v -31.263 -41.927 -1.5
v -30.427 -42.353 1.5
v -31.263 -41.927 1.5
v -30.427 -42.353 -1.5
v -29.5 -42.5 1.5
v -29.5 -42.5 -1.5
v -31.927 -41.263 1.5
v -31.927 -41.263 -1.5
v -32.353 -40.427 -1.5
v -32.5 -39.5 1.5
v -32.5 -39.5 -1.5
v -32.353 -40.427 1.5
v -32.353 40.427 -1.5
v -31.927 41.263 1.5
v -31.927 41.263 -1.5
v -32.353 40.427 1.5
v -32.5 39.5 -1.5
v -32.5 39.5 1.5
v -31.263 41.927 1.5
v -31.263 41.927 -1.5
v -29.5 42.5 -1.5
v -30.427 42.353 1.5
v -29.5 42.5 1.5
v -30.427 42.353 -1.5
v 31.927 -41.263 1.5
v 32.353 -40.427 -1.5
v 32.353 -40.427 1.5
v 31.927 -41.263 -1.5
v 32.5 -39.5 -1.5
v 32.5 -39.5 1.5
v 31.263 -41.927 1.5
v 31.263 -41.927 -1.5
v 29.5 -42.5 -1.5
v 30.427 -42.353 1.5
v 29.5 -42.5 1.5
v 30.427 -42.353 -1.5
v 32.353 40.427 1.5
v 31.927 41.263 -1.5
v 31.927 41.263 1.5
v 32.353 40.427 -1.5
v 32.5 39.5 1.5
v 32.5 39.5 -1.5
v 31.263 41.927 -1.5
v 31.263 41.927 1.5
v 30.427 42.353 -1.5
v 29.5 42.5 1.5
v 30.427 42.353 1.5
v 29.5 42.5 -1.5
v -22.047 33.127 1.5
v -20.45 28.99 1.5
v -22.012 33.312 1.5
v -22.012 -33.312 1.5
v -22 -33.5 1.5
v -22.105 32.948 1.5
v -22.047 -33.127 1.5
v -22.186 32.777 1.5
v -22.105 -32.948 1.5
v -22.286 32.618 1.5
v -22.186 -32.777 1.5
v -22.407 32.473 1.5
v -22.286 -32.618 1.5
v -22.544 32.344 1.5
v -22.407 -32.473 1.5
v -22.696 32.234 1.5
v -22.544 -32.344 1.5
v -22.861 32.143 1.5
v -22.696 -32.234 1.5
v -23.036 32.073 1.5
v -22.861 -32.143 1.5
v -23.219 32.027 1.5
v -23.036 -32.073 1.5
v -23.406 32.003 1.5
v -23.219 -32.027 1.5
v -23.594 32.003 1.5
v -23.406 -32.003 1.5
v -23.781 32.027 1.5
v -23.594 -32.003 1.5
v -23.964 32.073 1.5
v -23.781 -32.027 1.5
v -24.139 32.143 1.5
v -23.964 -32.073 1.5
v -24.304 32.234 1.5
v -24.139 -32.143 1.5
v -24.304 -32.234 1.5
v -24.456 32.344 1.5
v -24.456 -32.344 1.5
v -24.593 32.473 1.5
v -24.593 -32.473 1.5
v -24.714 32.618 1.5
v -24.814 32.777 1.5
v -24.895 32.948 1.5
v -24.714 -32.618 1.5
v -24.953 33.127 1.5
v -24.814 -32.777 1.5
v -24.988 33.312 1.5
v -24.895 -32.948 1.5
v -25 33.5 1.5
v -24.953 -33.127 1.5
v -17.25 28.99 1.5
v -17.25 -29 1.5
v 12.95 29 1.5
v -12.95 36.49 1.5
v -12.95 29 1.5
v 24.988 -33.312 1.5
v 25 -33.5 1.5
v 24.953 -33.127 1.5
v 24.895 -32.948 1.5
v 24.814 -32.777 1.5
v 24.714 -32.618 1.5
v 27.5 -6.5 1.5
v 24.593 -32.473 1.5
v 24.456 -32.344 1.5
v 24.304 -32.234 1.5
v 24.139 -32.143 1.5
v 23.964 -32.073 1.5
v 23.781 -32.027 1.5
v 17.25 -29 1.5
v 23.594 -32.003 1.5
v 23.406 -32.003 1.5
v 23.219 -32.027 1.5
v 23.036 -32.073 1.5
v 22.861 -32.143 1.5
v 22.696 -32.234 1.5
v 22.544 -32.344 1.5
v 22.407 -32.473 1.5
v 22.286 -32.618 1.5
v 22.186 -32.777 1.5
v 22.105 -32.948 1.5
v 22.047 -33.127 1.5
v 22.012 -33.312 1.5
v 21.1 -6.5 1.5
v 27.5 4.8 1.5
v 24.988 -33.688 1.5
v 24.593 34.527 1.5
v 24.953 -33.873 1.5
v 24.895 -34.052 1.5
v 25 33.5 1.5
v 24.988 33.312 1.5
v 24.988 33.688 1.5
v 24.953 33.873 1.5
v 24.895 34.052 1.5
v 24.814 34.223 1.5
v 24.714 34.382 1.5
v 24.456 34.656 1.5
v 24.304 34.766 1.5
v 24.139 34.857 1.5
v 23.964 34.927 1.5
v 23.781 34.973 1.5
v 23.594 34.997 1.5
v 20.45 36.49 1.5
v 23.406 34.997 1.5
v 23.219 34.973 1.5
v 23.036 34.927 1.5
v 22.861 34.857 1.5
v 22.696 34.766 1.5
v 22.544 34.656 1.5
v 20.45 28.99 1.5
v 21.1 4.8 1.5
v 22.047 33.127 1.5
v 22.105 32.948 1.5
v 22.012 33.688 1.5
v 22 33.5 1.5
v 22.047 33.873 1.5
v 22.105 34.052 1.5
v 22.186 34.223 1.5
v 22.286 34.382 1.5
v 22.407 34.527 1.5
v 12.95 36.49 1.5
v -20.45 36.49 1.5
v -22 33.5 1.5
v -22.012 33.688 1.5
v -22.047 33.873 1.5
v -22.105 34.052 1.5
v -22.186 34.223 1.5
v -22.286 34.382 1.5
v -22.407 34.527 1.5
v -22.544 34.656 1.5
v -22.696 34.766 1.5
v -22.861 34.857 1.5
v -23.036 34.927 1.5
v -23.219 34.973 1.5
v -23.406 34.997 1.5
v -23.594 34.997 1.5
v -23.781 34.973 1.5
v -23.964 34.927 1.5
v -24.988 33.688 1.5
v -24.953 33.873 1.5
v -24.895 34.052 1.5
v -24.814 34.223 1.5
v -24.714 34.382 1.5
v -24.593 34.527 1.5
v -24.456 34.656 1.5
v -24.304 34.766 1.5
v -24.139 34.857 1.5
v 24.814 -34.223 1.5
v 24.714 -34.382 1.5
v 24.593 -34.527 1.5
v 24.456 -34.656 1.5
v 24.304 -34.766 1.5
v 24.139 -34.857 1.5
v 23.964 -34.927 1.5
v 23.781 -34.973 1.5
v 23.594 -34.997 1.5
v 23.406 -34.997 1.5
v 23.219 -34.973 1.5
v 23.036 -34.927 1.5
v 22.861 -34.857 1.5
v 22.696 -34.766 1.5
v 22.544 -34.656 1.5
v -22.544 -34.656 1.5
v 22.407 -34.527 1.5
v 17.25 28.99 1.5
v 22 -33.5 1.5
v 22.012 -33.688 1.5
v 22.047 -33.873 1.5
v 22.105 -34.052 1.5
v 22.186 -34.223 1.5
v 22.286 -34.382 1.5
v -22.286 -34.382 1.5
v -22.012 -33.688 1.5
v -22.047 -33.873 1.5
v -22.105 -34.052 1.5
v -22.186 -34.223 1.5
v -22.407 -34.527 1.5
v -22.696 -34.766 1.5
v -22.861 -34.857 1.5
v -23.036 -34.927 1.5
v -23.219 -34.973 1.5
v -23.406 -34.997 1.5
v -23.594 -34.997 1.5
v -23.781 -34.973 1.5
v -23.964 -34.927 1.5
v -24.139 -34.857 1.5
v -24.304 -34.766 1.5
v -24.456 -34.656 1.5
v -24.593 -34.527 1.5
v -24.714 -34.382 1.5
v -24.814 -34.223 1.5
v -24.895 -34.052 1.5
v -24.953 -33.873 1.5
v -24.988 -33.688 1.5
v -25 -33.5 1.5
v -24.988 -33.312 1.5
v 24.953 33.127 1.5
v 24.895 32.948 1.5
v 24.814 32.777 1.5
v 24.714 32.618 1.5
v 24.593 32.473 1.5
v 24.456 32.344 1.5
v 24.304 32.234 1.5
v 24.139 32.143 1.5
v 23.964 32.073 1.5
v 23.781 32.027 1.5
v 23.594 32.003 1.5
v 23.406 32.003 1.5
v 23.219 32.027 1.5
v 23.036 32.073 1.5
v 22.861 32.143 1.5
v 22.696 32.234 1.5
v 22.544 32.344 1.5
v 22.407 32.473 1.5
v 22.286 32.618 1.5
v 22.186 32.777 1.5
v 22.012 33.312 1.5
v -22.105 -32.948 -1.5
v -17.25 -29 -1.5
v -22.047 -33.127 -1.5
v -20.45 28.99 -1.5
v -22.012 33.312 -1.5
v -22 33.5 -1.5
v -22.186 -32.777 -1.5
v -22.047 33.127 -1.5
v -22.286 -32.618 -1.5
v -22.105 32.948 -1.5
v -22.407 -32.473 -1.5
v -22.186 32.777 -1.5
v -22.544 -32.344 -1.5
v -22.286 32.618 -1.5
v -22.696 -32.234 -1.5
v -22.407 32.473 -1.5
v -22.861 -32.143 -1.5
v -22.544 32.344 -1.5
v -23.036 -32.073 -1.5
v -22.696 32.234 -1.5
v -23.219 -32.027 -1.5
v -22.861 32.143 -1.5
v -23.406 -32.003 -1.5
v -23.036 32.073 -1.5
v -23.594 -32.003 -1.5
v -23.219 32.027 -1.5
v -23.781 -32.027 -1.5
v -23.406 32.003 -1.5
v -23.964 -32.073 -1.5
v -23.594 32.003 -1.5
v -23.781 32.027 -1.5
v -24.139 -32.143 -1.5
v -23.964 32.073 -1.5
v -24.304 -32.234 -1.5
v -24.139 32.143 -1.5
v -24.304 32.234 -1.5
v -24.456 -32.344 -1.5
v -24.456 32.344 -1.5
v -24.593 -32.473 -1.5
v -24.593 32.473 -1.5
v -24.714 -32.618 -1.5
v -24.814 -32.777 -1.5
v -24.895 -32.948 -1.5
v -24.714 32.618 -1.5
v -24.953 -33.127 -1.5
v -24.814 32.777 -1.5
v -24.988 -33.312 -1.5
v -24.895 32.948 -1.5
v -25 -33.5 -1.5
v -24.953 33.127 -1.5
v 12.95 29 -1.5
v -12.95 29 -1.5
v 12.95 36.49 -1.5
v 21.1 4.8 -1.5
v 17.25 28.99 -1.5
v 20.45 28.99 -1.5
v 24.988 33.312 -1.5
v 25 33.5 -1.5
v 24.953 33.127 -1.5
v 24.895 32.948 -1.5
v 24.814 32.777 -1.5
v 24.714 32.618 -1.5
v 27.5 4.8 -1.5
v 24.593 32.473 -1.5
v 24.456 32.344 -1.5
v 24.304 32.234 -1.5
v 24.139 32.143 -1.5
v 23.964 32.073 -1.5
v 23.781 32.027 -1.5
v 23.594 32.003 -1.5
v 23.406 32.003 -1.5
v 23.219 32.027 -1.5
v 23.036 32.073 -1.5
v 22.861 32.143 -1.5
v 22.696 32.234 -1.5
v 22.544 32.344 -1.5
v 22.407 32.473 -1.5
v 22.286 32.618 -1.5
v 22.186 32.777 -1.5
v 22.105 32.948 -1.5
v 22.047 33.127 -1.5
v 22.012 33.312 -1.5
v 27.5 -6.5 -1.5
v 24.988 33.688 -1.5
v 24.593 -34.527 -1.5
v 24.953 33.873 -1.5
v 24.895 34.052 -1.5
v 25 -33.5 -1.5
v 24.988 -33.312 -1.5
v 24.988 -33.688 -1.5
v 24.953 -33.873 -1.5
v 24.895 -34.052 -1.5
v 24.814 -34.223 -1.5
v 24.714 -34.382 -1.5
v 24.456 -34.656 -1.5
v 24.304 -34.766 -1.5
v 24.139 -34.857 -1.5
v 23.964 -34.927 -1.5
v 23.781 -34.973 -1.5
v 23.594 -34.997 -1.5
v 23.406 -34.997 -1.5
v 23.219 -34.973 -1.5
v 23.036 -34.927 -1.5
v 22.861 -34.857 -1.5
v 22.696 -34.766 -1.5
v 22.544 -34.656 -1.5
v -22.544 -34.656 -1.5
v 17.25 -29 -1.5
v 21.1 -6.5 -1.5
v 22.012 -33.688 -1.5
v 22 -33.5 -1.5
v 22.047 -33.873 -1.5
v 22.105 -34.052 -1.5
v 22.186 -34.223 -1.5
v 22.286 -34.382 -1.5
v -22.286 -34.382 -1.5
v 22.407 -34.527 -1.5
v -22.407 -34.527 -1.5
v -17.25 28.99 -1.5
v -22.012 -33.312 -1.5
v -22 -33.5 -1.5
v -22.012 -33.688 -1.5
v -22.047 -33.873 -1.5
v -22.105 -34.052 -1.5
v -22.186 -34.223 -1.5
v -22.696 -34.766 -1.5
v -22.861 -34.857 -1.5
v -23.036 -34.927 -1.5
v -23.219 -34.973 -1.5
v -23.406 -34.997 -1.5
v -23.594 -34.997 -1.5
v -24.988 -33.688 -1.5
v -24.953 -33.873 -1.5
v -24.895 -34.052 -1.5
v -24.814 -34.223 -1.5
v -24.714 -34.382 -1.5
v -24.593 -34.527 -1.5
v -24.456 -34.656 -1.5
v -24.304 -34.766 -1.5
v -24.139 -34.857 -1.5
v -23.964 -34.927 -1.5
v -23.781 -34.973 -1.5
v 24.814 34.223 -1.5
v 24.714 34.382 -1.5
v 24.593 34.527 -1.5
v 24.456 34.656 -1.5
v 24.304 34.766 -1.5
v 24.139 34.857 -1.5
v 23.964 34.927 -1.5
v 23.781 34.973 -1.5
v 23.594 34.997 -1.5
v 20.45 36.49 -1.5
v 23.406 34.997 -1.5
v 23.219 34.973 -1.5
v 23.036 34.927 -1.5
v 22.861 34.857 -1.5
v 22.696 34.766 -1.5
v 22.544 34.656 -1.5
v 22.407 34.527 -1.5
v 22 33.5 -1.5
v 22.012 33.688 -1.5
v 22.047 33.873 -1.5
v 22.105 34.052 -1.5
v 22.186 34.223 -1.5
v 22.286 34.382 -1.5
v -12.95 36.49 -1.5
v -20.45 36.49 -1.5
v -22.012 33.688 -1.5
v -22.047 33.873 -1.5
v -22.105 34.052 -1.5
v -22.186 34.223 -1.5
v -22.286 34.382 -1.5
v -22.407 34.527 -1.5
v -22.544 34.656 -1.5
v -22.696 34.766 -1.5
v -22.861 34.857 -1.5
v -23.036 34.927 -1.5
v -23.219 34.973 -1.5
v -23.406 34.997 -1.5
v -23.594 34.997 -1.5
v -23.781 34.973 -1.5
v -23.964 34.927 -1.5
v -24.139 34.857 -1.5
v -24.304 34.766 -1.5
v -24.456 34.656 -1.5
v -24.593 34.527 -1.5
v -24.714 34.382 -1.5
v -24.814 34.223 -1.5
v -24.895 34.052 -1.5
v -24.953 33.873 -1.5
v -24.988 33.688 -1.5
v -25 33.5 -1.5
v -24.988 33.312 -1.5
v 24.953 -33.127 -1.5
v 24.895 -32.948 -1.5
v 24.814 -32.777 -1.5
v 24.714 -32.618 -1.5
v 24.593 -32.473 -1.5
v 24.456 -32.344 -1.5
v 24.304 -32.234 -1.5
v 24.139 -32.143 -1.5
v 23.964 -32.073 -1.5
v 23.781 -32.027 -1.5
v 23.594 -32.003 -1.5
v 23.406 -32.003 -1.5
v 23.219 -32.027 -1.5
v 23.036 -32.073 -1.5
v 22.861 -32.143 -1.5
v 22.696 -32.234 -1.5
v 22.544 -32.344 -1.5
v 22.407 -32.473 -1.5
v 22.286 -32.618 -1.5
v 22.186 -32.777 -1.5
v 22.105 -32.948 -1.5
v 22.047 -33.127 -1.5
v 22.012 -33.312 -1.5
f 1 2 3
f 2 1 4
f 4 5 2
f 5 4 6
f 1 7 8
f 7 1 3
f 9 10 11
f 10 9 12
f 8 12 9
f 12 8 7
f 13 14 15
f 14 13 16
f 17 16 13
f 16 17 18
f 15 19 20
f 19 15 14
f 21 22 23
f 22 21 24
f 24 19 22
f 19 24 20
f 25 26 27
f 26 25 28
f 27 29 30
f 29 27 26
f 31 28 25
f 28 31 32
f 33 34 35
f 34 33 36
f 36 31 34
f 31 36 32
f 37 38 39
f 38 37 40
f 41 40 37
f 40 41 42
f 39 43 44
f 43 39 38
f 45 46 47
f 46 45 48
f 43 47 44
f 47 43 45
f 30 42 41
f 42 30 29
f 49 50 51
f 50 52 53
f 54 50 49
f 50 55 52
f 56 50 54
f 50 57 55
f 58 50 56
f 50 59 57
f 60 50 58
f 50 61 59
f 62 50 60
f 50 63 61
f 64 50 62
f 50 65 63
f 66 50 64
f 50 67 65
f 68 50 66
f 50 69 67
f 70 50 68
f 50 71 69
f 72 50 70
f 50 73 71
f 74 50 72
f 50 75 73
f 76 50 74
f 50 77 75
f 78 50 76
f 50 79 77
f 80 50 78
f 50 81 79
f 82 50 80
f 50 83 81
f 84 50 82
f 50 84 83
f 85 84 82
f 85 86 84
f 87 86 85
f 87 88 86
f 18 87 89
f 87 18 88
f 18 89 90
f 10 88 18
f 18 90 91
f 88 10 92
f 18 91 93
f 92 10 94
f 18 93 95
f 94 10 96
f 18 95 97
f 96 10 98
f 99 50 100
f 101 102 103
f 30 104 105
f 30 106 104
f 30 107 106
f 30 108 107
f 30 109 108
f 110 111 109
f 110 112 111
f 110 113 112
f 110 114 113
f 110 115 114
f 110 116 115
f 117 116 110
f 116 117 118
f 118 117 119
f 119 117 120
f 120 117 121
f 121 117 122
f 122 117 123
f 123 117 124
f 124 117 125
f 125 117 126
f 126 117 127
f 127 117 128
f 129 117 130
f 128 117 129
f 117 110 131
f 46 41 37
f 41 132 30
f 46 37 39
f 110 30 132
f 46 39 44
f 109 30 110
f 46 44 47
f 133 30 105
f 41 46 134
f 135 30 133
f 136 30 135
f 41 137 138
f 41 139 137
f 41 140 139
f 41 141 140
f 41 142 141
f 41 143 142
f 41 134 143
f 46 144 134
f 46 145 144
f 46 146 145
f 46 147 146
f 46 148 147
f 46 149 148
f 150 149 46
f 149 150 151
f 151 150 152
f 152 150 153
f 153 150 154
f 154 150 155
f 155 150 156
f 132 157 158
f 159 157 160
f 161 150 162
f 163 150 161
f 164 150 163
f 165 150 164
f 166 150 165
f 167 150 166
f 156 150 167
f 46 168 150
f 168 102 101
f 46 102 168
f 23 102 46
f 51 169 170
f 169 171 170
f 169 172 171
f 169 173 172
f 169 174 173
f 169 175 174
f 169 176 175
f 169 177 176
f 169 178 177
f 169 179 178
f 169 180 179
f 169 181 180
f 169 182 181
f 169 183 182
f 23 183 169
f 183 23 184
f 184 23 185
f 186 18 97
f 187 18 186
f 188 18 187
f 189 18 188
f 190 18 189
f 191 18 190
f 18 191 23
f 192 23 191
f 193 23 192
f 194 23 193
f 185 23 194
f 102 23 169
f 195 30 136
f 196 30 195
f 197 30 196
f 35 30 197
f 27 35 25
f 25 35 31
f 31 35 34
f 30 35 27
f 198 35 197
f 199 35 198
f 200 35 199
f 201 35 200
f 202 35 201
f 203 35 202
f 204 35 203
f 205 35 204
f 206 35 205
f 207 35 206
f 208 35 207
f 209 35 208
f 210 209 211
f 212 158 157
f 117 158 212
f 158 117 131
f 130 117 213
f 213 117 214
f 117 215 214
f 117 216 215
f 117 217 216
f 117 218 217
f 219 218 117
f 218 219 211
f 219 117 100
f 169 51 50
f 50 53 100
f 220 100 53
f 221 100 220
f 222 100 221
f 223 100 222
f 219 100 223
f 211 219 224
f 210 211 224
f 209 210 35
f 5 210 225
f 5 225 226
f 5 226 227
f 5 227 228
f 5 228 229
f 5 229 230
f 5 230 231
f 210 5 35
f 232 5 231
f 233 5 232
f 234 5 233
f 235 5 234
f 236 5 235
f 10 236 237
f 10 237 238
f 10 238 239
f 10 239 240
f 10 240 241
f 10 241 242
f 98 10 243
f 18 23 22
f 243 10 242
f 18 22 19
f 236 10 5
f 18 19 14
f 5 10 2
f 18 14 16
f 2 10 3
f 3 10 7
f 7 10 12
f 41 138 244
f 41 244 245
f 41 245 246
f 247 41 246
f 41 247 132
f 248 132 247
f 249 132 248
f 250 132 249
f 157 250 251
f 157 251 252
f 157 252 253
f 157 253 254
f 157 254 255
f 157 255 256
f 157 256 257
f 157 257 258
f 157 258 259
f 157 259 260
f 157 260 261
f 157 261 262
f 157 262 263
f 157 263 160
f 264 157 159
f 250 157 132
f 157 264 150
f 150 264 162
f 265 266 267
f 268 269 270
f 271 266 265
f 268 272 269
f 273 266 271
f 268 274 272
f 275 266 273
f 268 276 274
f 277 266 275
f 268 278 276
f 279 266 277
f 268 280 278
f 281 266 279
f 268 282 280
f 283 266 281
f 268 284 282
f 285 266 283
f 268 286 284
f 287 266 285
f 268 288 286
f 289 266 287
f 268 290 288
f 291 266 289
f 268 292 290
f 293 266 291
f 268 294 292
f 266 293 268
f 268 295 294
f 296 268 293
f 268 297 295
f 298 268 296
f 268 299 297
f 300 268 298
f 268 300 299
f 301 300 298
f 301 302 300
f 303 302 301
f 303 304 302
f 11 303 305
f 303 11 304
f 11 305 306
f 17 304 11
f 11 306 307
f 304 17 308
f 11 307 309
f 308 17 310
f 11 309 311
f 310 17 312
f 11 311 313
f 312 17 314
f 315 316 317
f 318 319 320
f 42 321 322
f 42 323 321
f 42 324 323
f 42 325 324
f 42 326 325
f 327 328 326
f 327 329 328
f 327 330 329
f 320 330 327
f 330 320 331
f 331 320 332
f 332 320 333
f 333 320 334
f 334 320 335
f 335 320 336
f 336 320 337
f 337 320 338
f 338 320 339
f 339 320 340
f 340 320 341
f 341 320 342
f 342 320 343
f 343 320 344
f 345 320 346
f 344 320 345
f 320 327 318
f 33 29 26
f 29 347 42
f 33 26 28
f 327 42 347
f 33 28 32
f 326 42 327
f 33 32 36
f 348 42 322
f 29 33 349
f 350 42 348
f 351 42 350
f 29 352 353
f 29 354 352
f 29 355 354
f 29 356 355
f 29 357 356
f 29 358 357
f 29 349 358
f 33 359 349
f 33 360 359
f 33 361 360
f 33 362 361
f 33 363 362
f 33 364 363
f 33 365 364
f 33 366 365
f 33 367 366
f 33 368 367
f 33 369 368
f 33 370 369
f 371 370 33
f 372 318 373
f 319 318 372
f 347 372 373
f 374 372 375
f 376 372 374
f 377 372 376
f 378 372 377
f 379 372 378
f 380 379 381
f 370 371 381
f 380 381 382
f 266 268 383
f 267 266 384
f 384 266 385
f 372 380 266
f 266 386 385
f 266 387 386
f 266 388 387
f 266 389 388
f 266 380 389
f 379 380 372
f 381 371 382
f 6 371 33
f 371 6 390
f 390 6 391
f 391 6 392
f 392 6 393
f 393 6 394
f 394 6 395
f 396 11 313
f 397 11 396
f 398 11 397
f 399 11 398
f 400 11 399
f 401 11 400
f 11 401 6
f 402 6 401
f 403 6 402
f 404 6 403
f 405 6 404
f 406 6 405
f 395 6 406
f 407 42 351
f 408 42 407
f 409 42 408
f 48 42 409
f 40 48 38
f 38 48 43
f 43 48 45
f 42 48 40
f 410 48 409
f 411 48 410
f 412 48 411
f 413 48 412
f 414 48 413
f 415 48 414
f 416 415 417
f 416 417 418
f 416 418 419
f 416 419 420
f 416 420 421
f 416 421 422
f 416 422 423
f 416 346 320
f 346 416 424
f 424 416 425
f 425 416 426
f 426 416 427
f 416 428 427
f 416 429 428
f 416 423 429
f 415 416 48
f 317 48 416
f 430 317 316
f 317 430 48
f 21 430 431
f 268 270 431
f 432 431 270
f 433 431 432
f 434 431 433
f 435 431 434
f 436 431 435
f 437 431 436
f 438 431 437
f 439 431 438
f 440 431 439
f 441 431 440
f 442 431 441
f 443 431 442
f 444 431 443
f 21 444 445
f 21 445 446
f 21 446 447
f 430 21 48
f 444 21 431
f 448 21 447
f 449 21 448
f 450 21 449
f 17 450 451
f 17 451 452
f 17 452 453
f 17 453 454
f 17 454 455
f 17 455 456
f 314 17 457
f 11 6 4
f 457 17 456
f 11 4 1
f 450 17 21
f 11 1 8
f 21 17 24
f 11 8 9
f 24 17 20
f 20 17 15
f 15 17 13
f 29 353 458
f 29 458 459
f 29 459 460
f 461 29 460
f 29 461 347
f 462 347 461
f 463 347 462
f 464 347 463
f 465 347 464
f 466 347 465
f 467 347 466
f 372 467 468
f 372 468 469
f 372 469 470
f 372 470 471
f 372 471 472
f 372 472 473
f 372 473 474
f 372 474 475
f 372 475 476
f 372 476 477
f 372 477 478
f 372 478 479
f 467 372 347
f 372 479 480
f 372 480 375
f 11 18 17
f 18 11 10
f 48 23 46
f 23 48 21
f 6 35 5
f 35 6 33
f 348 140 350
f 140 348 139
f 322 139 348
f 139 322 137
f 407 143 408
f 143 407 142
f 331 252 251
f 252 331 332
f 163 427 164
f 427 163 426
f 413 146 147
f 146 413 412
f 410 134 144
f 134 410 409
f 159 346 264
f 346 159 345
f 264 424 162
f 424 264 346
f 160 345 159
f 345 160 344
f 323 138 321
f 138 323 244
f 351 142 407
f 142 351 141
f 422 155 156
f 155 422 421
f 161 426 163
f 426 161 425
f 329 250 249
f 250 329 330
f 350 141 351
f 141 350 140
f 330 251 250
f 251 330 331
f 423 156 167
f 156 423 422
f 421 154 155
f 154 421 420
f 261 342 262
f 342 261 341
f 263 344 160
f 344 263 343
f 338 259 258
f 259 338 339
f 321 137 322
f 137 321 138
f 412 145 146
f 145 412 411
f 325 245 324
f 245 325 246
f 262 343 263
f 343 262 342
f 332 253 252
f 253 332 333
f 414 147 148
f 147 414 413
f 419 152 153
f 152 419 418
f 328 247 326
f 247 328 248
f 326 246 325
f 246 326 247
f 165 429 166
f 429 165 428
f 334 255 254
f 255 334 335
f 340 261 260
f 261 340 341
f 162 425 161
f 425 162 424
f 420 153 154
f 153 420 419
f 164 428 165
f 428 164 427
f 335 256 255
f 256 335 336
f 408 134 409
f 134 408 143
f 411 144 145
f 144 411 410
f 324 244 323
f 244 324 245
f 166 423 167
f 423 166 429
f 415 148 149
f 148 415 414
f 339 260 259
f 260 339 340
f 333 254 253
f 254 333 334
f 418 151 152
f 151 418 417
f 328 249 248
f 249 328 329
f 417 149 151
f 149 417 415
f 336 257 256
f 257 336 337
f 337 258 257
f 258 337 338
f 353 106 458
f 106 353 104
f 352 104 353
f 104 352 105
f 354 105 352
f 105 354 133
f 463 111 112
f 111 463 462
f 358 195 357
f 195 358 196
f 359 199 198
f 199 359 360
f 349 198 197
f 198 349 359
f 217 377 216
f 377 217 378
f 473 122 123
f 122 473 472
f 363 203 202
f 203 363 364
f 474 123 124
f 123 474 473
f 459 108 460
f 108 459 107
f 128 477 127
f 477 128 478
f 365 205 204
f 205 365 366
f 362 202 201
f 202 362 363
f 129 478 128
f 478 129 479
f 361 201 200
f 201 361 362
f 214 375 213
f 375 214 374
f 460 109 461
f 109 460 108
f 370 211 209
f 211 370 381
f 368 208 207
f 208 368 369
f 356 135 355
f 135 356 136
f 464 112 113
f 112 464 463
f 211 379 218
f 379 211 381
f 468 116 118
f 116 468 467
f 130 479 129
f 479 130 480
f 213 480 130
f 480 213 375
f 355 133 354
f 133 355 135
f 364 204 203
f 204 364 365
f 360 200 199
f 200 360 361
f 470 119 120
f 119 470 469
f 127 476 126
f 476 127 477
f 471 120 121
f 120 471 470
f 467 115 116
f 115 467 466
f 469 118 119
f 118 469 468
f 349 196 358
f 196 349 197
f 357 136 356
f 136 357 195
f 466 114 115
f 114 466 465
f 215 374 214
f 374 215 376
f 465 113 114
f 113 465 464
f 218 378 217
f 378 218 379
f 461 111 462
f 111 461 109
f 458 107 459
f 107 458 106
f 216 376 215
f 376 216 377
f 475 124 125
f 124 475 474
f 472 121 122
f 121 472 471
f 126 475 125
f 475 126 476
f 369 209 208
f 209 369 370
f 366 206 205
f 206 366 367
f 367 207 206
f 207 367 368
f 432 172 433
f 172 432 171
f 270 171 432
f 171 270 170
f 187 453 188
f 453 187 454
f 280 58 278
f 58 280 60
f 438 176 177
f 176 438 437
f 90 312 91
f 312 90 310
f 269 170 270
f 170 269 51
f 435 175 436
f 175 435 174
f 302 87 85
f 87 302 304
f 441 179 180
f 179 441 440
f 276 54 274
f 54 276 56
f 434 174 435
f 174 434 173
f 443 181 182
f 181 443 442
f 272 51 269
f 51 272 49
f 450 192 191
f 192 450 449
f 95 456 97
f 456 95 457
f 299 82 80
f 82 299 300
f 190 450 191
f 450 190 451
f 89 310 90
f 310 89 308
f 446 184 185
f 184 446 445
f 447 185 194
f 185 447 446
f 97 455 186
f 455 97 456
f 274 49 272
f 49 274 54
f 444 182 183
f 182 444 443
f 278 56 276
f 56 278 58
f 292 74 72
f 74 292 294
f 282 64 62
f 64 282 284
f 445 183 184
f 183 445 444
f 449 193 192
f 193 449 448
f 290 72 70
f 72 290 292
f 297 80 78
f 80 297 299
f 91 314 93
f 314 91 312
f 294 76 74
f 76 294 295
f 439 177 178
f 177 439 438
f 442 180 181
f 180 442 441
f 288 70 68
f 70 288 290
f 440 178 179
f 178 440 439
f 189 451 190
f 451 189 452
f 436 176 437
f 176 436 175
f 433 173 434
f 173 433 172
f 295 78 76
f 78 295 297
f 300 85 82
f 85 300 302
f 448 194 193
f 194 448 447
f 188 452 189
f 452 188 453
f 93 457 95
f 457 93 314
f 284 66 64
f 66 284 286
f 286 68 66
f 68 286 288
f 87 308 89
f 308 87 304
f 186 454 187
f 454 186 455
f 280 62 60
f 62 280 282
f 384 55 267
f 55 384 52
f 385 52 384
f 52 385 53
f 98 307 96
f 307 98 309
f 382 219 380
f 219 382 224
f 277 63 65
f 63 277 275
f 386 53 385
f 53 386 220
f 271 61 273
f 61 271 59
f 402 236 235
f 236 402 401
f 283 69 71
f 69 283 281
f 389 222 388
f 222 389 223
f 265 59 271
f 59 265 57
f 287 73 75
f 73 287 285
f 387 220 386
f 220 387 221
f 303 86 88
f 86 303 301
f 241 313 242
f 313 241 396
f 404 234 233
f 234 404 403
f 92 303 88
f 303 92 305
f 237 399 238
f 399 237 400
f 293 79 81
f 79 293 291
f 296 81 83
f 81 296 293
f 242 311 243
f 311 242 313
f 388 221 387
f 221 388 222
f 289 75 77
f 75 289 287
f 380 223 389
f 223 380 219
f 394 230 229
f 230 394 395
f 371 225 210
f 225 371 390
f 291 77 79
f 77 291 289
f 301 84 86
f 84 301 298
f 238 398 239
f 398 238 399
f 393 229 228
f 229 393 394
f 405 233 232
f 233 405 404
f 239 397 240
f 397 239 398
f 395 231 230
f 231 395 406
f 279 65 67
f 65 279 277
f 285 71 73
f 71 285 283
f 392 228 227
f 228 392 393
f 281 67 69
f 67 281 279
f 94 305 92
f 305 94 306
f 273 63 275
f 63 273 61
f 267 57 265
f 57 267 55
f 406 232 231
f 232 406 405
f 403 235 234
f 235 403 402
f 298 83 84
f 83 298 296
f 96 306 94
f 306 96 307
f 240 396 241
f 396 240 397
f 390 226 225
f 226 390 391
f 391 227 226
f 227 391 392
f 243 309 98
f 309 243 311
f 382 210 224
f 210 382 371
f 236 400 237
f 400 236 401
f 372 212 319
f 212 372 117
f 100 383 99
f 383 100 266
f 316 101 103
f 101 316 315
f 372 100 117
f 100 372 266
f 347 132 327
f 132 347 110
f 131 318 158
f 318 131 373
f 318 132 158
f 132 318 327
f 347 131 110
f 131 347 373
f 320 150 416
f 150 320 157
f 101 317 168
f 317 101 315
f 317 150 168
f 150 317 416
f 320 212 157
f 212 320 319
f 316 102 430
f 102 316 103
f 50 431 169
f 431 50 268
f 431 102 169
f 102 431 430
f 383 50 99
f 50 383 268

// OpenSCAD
// file: common.scad
PCB_WIDTH = 55 + 4;
PCB_HEIGHT = 75 + 4;
PCB_DEPTH = 16 + 5;

WALL_THICKNESS = 3;

CASE_WIDTH = PCB_WIDTH + WALL_THICKNESS * 2;
CASE_HEIGHT = PCB_HEIGHT + WALL_THICKNESS * 2;

CASE_FRONT_DEPTH = PCB_DEPTH + WALL_THICKNESS;

SCREW_OFFSET = 4;

SUPPORT_DEPTH = 6;

USB_WIDTH = 13;
USB_DEPTH = 8;

LCD_WIDTH = 34.5;
LCD_HEIGHT = 58.0;

BUTTON_WIDTH = 7.5;
BUTTON_HEIGHT = 7.5;

module corner() {
	translate([0, 0, -50])
	difference() {
		cube([WALL_THICKNESS + 0.002, WALL_THICKNESS + 0.002, 100]);

		translate([0, 0, -500])
		cylinder(r=WALL_THICKNESS, h=1000, $fn=20);
	}
}

module corners() {
	translate([-CASE_WIDTH / 2 + WALL_THICKNESS, -CASE_HEIGHT / 2 + WALL_THICKNESS, 0])
	mirror([1, 1, 0])
	corner();

	translate([-CASE_WIDTH / 2 + WALL_THICKNESS, CASE_HEIGHT / 2 - WALL_THICKNESS, 0])
	mirror([1, 0, 0])
	corner();

	translate([CASE_WIDTH / 2 - WALL_THICKNESS, -CASE_HEIGHT / 2 + WALL_THICKNESS, 0])
	mirror([0, 1, 0])
	corner();

	translate([CASE_WIDTH / 2 - WALL_THICKNESS, CASE_HEIGHT / 2 - WALL_THICKNESS, 0])
	corner();
}
// main file
include <common.scad>

SWITCH_HEIGHT = 11.3;
SWITCH_WIDTH = 6.4;

module screw() {
	translate([0, 0, -PCB_DEPTH / 2 + WALL_THICKNESS - 0.0001])

	cylinder(h=SUPPORT_DEPTH+99999, d=3, $fn=50);
}

module main() {
	cube([CASE_WIDTH, CASE_HEIGHT, WALL_THICKNESS], true);
}

module button() {
	cube([BUTTON_WIDTH, BUTTON_HEIGHT, 100], true);
}

difference() {
	main();

	translate([(PCB_WIDTH - 4) / 2 - SCREW_OFFSET, (PCB_HEIGHT - 4) / 2 - SCREW_OFFSET, 0]) screw();
	translate([(PCB_WIDTH - 4) / 2 - SCREW_OFFSET, -(PCB_HEIGHT - 4) / 2 + SCREW_OFFSET, 0]) screw();
	translate([-(PCB_WIDTH - 4) / 2 + SCREW_OFFSET, (PCB_HEIGHT - 4) / 2 - SCREW_OFFSET, 0]) screw();
	translate([-(PCB_WIDTH - 4) / 2 + SCREW_OFFSET, -(PCB_HEIGHT - 4) / 2 + SCREW_OFFSET, 0]) screw();

	cube([LCD_WIDTH, LCD_HEIGHT, 500], true);

	translate([PCB_WIDTH/2-SWITCH_WIDTH/2-2, -PCB_HEIGHT/2+SWITCH_HEIGHT/2+33, 0])
	cube([SWITCH_WIDTH, SWITCH_HEIGHT, 500], true);

	corners();

	translate([15.95 + 1.5/2, 32 + 1.5/2 - 0.01, 0])
	button();

	translate([-15.95 - 1.5/2, 32 + 1.5/2 - 0.01, 0])
	button();
}
